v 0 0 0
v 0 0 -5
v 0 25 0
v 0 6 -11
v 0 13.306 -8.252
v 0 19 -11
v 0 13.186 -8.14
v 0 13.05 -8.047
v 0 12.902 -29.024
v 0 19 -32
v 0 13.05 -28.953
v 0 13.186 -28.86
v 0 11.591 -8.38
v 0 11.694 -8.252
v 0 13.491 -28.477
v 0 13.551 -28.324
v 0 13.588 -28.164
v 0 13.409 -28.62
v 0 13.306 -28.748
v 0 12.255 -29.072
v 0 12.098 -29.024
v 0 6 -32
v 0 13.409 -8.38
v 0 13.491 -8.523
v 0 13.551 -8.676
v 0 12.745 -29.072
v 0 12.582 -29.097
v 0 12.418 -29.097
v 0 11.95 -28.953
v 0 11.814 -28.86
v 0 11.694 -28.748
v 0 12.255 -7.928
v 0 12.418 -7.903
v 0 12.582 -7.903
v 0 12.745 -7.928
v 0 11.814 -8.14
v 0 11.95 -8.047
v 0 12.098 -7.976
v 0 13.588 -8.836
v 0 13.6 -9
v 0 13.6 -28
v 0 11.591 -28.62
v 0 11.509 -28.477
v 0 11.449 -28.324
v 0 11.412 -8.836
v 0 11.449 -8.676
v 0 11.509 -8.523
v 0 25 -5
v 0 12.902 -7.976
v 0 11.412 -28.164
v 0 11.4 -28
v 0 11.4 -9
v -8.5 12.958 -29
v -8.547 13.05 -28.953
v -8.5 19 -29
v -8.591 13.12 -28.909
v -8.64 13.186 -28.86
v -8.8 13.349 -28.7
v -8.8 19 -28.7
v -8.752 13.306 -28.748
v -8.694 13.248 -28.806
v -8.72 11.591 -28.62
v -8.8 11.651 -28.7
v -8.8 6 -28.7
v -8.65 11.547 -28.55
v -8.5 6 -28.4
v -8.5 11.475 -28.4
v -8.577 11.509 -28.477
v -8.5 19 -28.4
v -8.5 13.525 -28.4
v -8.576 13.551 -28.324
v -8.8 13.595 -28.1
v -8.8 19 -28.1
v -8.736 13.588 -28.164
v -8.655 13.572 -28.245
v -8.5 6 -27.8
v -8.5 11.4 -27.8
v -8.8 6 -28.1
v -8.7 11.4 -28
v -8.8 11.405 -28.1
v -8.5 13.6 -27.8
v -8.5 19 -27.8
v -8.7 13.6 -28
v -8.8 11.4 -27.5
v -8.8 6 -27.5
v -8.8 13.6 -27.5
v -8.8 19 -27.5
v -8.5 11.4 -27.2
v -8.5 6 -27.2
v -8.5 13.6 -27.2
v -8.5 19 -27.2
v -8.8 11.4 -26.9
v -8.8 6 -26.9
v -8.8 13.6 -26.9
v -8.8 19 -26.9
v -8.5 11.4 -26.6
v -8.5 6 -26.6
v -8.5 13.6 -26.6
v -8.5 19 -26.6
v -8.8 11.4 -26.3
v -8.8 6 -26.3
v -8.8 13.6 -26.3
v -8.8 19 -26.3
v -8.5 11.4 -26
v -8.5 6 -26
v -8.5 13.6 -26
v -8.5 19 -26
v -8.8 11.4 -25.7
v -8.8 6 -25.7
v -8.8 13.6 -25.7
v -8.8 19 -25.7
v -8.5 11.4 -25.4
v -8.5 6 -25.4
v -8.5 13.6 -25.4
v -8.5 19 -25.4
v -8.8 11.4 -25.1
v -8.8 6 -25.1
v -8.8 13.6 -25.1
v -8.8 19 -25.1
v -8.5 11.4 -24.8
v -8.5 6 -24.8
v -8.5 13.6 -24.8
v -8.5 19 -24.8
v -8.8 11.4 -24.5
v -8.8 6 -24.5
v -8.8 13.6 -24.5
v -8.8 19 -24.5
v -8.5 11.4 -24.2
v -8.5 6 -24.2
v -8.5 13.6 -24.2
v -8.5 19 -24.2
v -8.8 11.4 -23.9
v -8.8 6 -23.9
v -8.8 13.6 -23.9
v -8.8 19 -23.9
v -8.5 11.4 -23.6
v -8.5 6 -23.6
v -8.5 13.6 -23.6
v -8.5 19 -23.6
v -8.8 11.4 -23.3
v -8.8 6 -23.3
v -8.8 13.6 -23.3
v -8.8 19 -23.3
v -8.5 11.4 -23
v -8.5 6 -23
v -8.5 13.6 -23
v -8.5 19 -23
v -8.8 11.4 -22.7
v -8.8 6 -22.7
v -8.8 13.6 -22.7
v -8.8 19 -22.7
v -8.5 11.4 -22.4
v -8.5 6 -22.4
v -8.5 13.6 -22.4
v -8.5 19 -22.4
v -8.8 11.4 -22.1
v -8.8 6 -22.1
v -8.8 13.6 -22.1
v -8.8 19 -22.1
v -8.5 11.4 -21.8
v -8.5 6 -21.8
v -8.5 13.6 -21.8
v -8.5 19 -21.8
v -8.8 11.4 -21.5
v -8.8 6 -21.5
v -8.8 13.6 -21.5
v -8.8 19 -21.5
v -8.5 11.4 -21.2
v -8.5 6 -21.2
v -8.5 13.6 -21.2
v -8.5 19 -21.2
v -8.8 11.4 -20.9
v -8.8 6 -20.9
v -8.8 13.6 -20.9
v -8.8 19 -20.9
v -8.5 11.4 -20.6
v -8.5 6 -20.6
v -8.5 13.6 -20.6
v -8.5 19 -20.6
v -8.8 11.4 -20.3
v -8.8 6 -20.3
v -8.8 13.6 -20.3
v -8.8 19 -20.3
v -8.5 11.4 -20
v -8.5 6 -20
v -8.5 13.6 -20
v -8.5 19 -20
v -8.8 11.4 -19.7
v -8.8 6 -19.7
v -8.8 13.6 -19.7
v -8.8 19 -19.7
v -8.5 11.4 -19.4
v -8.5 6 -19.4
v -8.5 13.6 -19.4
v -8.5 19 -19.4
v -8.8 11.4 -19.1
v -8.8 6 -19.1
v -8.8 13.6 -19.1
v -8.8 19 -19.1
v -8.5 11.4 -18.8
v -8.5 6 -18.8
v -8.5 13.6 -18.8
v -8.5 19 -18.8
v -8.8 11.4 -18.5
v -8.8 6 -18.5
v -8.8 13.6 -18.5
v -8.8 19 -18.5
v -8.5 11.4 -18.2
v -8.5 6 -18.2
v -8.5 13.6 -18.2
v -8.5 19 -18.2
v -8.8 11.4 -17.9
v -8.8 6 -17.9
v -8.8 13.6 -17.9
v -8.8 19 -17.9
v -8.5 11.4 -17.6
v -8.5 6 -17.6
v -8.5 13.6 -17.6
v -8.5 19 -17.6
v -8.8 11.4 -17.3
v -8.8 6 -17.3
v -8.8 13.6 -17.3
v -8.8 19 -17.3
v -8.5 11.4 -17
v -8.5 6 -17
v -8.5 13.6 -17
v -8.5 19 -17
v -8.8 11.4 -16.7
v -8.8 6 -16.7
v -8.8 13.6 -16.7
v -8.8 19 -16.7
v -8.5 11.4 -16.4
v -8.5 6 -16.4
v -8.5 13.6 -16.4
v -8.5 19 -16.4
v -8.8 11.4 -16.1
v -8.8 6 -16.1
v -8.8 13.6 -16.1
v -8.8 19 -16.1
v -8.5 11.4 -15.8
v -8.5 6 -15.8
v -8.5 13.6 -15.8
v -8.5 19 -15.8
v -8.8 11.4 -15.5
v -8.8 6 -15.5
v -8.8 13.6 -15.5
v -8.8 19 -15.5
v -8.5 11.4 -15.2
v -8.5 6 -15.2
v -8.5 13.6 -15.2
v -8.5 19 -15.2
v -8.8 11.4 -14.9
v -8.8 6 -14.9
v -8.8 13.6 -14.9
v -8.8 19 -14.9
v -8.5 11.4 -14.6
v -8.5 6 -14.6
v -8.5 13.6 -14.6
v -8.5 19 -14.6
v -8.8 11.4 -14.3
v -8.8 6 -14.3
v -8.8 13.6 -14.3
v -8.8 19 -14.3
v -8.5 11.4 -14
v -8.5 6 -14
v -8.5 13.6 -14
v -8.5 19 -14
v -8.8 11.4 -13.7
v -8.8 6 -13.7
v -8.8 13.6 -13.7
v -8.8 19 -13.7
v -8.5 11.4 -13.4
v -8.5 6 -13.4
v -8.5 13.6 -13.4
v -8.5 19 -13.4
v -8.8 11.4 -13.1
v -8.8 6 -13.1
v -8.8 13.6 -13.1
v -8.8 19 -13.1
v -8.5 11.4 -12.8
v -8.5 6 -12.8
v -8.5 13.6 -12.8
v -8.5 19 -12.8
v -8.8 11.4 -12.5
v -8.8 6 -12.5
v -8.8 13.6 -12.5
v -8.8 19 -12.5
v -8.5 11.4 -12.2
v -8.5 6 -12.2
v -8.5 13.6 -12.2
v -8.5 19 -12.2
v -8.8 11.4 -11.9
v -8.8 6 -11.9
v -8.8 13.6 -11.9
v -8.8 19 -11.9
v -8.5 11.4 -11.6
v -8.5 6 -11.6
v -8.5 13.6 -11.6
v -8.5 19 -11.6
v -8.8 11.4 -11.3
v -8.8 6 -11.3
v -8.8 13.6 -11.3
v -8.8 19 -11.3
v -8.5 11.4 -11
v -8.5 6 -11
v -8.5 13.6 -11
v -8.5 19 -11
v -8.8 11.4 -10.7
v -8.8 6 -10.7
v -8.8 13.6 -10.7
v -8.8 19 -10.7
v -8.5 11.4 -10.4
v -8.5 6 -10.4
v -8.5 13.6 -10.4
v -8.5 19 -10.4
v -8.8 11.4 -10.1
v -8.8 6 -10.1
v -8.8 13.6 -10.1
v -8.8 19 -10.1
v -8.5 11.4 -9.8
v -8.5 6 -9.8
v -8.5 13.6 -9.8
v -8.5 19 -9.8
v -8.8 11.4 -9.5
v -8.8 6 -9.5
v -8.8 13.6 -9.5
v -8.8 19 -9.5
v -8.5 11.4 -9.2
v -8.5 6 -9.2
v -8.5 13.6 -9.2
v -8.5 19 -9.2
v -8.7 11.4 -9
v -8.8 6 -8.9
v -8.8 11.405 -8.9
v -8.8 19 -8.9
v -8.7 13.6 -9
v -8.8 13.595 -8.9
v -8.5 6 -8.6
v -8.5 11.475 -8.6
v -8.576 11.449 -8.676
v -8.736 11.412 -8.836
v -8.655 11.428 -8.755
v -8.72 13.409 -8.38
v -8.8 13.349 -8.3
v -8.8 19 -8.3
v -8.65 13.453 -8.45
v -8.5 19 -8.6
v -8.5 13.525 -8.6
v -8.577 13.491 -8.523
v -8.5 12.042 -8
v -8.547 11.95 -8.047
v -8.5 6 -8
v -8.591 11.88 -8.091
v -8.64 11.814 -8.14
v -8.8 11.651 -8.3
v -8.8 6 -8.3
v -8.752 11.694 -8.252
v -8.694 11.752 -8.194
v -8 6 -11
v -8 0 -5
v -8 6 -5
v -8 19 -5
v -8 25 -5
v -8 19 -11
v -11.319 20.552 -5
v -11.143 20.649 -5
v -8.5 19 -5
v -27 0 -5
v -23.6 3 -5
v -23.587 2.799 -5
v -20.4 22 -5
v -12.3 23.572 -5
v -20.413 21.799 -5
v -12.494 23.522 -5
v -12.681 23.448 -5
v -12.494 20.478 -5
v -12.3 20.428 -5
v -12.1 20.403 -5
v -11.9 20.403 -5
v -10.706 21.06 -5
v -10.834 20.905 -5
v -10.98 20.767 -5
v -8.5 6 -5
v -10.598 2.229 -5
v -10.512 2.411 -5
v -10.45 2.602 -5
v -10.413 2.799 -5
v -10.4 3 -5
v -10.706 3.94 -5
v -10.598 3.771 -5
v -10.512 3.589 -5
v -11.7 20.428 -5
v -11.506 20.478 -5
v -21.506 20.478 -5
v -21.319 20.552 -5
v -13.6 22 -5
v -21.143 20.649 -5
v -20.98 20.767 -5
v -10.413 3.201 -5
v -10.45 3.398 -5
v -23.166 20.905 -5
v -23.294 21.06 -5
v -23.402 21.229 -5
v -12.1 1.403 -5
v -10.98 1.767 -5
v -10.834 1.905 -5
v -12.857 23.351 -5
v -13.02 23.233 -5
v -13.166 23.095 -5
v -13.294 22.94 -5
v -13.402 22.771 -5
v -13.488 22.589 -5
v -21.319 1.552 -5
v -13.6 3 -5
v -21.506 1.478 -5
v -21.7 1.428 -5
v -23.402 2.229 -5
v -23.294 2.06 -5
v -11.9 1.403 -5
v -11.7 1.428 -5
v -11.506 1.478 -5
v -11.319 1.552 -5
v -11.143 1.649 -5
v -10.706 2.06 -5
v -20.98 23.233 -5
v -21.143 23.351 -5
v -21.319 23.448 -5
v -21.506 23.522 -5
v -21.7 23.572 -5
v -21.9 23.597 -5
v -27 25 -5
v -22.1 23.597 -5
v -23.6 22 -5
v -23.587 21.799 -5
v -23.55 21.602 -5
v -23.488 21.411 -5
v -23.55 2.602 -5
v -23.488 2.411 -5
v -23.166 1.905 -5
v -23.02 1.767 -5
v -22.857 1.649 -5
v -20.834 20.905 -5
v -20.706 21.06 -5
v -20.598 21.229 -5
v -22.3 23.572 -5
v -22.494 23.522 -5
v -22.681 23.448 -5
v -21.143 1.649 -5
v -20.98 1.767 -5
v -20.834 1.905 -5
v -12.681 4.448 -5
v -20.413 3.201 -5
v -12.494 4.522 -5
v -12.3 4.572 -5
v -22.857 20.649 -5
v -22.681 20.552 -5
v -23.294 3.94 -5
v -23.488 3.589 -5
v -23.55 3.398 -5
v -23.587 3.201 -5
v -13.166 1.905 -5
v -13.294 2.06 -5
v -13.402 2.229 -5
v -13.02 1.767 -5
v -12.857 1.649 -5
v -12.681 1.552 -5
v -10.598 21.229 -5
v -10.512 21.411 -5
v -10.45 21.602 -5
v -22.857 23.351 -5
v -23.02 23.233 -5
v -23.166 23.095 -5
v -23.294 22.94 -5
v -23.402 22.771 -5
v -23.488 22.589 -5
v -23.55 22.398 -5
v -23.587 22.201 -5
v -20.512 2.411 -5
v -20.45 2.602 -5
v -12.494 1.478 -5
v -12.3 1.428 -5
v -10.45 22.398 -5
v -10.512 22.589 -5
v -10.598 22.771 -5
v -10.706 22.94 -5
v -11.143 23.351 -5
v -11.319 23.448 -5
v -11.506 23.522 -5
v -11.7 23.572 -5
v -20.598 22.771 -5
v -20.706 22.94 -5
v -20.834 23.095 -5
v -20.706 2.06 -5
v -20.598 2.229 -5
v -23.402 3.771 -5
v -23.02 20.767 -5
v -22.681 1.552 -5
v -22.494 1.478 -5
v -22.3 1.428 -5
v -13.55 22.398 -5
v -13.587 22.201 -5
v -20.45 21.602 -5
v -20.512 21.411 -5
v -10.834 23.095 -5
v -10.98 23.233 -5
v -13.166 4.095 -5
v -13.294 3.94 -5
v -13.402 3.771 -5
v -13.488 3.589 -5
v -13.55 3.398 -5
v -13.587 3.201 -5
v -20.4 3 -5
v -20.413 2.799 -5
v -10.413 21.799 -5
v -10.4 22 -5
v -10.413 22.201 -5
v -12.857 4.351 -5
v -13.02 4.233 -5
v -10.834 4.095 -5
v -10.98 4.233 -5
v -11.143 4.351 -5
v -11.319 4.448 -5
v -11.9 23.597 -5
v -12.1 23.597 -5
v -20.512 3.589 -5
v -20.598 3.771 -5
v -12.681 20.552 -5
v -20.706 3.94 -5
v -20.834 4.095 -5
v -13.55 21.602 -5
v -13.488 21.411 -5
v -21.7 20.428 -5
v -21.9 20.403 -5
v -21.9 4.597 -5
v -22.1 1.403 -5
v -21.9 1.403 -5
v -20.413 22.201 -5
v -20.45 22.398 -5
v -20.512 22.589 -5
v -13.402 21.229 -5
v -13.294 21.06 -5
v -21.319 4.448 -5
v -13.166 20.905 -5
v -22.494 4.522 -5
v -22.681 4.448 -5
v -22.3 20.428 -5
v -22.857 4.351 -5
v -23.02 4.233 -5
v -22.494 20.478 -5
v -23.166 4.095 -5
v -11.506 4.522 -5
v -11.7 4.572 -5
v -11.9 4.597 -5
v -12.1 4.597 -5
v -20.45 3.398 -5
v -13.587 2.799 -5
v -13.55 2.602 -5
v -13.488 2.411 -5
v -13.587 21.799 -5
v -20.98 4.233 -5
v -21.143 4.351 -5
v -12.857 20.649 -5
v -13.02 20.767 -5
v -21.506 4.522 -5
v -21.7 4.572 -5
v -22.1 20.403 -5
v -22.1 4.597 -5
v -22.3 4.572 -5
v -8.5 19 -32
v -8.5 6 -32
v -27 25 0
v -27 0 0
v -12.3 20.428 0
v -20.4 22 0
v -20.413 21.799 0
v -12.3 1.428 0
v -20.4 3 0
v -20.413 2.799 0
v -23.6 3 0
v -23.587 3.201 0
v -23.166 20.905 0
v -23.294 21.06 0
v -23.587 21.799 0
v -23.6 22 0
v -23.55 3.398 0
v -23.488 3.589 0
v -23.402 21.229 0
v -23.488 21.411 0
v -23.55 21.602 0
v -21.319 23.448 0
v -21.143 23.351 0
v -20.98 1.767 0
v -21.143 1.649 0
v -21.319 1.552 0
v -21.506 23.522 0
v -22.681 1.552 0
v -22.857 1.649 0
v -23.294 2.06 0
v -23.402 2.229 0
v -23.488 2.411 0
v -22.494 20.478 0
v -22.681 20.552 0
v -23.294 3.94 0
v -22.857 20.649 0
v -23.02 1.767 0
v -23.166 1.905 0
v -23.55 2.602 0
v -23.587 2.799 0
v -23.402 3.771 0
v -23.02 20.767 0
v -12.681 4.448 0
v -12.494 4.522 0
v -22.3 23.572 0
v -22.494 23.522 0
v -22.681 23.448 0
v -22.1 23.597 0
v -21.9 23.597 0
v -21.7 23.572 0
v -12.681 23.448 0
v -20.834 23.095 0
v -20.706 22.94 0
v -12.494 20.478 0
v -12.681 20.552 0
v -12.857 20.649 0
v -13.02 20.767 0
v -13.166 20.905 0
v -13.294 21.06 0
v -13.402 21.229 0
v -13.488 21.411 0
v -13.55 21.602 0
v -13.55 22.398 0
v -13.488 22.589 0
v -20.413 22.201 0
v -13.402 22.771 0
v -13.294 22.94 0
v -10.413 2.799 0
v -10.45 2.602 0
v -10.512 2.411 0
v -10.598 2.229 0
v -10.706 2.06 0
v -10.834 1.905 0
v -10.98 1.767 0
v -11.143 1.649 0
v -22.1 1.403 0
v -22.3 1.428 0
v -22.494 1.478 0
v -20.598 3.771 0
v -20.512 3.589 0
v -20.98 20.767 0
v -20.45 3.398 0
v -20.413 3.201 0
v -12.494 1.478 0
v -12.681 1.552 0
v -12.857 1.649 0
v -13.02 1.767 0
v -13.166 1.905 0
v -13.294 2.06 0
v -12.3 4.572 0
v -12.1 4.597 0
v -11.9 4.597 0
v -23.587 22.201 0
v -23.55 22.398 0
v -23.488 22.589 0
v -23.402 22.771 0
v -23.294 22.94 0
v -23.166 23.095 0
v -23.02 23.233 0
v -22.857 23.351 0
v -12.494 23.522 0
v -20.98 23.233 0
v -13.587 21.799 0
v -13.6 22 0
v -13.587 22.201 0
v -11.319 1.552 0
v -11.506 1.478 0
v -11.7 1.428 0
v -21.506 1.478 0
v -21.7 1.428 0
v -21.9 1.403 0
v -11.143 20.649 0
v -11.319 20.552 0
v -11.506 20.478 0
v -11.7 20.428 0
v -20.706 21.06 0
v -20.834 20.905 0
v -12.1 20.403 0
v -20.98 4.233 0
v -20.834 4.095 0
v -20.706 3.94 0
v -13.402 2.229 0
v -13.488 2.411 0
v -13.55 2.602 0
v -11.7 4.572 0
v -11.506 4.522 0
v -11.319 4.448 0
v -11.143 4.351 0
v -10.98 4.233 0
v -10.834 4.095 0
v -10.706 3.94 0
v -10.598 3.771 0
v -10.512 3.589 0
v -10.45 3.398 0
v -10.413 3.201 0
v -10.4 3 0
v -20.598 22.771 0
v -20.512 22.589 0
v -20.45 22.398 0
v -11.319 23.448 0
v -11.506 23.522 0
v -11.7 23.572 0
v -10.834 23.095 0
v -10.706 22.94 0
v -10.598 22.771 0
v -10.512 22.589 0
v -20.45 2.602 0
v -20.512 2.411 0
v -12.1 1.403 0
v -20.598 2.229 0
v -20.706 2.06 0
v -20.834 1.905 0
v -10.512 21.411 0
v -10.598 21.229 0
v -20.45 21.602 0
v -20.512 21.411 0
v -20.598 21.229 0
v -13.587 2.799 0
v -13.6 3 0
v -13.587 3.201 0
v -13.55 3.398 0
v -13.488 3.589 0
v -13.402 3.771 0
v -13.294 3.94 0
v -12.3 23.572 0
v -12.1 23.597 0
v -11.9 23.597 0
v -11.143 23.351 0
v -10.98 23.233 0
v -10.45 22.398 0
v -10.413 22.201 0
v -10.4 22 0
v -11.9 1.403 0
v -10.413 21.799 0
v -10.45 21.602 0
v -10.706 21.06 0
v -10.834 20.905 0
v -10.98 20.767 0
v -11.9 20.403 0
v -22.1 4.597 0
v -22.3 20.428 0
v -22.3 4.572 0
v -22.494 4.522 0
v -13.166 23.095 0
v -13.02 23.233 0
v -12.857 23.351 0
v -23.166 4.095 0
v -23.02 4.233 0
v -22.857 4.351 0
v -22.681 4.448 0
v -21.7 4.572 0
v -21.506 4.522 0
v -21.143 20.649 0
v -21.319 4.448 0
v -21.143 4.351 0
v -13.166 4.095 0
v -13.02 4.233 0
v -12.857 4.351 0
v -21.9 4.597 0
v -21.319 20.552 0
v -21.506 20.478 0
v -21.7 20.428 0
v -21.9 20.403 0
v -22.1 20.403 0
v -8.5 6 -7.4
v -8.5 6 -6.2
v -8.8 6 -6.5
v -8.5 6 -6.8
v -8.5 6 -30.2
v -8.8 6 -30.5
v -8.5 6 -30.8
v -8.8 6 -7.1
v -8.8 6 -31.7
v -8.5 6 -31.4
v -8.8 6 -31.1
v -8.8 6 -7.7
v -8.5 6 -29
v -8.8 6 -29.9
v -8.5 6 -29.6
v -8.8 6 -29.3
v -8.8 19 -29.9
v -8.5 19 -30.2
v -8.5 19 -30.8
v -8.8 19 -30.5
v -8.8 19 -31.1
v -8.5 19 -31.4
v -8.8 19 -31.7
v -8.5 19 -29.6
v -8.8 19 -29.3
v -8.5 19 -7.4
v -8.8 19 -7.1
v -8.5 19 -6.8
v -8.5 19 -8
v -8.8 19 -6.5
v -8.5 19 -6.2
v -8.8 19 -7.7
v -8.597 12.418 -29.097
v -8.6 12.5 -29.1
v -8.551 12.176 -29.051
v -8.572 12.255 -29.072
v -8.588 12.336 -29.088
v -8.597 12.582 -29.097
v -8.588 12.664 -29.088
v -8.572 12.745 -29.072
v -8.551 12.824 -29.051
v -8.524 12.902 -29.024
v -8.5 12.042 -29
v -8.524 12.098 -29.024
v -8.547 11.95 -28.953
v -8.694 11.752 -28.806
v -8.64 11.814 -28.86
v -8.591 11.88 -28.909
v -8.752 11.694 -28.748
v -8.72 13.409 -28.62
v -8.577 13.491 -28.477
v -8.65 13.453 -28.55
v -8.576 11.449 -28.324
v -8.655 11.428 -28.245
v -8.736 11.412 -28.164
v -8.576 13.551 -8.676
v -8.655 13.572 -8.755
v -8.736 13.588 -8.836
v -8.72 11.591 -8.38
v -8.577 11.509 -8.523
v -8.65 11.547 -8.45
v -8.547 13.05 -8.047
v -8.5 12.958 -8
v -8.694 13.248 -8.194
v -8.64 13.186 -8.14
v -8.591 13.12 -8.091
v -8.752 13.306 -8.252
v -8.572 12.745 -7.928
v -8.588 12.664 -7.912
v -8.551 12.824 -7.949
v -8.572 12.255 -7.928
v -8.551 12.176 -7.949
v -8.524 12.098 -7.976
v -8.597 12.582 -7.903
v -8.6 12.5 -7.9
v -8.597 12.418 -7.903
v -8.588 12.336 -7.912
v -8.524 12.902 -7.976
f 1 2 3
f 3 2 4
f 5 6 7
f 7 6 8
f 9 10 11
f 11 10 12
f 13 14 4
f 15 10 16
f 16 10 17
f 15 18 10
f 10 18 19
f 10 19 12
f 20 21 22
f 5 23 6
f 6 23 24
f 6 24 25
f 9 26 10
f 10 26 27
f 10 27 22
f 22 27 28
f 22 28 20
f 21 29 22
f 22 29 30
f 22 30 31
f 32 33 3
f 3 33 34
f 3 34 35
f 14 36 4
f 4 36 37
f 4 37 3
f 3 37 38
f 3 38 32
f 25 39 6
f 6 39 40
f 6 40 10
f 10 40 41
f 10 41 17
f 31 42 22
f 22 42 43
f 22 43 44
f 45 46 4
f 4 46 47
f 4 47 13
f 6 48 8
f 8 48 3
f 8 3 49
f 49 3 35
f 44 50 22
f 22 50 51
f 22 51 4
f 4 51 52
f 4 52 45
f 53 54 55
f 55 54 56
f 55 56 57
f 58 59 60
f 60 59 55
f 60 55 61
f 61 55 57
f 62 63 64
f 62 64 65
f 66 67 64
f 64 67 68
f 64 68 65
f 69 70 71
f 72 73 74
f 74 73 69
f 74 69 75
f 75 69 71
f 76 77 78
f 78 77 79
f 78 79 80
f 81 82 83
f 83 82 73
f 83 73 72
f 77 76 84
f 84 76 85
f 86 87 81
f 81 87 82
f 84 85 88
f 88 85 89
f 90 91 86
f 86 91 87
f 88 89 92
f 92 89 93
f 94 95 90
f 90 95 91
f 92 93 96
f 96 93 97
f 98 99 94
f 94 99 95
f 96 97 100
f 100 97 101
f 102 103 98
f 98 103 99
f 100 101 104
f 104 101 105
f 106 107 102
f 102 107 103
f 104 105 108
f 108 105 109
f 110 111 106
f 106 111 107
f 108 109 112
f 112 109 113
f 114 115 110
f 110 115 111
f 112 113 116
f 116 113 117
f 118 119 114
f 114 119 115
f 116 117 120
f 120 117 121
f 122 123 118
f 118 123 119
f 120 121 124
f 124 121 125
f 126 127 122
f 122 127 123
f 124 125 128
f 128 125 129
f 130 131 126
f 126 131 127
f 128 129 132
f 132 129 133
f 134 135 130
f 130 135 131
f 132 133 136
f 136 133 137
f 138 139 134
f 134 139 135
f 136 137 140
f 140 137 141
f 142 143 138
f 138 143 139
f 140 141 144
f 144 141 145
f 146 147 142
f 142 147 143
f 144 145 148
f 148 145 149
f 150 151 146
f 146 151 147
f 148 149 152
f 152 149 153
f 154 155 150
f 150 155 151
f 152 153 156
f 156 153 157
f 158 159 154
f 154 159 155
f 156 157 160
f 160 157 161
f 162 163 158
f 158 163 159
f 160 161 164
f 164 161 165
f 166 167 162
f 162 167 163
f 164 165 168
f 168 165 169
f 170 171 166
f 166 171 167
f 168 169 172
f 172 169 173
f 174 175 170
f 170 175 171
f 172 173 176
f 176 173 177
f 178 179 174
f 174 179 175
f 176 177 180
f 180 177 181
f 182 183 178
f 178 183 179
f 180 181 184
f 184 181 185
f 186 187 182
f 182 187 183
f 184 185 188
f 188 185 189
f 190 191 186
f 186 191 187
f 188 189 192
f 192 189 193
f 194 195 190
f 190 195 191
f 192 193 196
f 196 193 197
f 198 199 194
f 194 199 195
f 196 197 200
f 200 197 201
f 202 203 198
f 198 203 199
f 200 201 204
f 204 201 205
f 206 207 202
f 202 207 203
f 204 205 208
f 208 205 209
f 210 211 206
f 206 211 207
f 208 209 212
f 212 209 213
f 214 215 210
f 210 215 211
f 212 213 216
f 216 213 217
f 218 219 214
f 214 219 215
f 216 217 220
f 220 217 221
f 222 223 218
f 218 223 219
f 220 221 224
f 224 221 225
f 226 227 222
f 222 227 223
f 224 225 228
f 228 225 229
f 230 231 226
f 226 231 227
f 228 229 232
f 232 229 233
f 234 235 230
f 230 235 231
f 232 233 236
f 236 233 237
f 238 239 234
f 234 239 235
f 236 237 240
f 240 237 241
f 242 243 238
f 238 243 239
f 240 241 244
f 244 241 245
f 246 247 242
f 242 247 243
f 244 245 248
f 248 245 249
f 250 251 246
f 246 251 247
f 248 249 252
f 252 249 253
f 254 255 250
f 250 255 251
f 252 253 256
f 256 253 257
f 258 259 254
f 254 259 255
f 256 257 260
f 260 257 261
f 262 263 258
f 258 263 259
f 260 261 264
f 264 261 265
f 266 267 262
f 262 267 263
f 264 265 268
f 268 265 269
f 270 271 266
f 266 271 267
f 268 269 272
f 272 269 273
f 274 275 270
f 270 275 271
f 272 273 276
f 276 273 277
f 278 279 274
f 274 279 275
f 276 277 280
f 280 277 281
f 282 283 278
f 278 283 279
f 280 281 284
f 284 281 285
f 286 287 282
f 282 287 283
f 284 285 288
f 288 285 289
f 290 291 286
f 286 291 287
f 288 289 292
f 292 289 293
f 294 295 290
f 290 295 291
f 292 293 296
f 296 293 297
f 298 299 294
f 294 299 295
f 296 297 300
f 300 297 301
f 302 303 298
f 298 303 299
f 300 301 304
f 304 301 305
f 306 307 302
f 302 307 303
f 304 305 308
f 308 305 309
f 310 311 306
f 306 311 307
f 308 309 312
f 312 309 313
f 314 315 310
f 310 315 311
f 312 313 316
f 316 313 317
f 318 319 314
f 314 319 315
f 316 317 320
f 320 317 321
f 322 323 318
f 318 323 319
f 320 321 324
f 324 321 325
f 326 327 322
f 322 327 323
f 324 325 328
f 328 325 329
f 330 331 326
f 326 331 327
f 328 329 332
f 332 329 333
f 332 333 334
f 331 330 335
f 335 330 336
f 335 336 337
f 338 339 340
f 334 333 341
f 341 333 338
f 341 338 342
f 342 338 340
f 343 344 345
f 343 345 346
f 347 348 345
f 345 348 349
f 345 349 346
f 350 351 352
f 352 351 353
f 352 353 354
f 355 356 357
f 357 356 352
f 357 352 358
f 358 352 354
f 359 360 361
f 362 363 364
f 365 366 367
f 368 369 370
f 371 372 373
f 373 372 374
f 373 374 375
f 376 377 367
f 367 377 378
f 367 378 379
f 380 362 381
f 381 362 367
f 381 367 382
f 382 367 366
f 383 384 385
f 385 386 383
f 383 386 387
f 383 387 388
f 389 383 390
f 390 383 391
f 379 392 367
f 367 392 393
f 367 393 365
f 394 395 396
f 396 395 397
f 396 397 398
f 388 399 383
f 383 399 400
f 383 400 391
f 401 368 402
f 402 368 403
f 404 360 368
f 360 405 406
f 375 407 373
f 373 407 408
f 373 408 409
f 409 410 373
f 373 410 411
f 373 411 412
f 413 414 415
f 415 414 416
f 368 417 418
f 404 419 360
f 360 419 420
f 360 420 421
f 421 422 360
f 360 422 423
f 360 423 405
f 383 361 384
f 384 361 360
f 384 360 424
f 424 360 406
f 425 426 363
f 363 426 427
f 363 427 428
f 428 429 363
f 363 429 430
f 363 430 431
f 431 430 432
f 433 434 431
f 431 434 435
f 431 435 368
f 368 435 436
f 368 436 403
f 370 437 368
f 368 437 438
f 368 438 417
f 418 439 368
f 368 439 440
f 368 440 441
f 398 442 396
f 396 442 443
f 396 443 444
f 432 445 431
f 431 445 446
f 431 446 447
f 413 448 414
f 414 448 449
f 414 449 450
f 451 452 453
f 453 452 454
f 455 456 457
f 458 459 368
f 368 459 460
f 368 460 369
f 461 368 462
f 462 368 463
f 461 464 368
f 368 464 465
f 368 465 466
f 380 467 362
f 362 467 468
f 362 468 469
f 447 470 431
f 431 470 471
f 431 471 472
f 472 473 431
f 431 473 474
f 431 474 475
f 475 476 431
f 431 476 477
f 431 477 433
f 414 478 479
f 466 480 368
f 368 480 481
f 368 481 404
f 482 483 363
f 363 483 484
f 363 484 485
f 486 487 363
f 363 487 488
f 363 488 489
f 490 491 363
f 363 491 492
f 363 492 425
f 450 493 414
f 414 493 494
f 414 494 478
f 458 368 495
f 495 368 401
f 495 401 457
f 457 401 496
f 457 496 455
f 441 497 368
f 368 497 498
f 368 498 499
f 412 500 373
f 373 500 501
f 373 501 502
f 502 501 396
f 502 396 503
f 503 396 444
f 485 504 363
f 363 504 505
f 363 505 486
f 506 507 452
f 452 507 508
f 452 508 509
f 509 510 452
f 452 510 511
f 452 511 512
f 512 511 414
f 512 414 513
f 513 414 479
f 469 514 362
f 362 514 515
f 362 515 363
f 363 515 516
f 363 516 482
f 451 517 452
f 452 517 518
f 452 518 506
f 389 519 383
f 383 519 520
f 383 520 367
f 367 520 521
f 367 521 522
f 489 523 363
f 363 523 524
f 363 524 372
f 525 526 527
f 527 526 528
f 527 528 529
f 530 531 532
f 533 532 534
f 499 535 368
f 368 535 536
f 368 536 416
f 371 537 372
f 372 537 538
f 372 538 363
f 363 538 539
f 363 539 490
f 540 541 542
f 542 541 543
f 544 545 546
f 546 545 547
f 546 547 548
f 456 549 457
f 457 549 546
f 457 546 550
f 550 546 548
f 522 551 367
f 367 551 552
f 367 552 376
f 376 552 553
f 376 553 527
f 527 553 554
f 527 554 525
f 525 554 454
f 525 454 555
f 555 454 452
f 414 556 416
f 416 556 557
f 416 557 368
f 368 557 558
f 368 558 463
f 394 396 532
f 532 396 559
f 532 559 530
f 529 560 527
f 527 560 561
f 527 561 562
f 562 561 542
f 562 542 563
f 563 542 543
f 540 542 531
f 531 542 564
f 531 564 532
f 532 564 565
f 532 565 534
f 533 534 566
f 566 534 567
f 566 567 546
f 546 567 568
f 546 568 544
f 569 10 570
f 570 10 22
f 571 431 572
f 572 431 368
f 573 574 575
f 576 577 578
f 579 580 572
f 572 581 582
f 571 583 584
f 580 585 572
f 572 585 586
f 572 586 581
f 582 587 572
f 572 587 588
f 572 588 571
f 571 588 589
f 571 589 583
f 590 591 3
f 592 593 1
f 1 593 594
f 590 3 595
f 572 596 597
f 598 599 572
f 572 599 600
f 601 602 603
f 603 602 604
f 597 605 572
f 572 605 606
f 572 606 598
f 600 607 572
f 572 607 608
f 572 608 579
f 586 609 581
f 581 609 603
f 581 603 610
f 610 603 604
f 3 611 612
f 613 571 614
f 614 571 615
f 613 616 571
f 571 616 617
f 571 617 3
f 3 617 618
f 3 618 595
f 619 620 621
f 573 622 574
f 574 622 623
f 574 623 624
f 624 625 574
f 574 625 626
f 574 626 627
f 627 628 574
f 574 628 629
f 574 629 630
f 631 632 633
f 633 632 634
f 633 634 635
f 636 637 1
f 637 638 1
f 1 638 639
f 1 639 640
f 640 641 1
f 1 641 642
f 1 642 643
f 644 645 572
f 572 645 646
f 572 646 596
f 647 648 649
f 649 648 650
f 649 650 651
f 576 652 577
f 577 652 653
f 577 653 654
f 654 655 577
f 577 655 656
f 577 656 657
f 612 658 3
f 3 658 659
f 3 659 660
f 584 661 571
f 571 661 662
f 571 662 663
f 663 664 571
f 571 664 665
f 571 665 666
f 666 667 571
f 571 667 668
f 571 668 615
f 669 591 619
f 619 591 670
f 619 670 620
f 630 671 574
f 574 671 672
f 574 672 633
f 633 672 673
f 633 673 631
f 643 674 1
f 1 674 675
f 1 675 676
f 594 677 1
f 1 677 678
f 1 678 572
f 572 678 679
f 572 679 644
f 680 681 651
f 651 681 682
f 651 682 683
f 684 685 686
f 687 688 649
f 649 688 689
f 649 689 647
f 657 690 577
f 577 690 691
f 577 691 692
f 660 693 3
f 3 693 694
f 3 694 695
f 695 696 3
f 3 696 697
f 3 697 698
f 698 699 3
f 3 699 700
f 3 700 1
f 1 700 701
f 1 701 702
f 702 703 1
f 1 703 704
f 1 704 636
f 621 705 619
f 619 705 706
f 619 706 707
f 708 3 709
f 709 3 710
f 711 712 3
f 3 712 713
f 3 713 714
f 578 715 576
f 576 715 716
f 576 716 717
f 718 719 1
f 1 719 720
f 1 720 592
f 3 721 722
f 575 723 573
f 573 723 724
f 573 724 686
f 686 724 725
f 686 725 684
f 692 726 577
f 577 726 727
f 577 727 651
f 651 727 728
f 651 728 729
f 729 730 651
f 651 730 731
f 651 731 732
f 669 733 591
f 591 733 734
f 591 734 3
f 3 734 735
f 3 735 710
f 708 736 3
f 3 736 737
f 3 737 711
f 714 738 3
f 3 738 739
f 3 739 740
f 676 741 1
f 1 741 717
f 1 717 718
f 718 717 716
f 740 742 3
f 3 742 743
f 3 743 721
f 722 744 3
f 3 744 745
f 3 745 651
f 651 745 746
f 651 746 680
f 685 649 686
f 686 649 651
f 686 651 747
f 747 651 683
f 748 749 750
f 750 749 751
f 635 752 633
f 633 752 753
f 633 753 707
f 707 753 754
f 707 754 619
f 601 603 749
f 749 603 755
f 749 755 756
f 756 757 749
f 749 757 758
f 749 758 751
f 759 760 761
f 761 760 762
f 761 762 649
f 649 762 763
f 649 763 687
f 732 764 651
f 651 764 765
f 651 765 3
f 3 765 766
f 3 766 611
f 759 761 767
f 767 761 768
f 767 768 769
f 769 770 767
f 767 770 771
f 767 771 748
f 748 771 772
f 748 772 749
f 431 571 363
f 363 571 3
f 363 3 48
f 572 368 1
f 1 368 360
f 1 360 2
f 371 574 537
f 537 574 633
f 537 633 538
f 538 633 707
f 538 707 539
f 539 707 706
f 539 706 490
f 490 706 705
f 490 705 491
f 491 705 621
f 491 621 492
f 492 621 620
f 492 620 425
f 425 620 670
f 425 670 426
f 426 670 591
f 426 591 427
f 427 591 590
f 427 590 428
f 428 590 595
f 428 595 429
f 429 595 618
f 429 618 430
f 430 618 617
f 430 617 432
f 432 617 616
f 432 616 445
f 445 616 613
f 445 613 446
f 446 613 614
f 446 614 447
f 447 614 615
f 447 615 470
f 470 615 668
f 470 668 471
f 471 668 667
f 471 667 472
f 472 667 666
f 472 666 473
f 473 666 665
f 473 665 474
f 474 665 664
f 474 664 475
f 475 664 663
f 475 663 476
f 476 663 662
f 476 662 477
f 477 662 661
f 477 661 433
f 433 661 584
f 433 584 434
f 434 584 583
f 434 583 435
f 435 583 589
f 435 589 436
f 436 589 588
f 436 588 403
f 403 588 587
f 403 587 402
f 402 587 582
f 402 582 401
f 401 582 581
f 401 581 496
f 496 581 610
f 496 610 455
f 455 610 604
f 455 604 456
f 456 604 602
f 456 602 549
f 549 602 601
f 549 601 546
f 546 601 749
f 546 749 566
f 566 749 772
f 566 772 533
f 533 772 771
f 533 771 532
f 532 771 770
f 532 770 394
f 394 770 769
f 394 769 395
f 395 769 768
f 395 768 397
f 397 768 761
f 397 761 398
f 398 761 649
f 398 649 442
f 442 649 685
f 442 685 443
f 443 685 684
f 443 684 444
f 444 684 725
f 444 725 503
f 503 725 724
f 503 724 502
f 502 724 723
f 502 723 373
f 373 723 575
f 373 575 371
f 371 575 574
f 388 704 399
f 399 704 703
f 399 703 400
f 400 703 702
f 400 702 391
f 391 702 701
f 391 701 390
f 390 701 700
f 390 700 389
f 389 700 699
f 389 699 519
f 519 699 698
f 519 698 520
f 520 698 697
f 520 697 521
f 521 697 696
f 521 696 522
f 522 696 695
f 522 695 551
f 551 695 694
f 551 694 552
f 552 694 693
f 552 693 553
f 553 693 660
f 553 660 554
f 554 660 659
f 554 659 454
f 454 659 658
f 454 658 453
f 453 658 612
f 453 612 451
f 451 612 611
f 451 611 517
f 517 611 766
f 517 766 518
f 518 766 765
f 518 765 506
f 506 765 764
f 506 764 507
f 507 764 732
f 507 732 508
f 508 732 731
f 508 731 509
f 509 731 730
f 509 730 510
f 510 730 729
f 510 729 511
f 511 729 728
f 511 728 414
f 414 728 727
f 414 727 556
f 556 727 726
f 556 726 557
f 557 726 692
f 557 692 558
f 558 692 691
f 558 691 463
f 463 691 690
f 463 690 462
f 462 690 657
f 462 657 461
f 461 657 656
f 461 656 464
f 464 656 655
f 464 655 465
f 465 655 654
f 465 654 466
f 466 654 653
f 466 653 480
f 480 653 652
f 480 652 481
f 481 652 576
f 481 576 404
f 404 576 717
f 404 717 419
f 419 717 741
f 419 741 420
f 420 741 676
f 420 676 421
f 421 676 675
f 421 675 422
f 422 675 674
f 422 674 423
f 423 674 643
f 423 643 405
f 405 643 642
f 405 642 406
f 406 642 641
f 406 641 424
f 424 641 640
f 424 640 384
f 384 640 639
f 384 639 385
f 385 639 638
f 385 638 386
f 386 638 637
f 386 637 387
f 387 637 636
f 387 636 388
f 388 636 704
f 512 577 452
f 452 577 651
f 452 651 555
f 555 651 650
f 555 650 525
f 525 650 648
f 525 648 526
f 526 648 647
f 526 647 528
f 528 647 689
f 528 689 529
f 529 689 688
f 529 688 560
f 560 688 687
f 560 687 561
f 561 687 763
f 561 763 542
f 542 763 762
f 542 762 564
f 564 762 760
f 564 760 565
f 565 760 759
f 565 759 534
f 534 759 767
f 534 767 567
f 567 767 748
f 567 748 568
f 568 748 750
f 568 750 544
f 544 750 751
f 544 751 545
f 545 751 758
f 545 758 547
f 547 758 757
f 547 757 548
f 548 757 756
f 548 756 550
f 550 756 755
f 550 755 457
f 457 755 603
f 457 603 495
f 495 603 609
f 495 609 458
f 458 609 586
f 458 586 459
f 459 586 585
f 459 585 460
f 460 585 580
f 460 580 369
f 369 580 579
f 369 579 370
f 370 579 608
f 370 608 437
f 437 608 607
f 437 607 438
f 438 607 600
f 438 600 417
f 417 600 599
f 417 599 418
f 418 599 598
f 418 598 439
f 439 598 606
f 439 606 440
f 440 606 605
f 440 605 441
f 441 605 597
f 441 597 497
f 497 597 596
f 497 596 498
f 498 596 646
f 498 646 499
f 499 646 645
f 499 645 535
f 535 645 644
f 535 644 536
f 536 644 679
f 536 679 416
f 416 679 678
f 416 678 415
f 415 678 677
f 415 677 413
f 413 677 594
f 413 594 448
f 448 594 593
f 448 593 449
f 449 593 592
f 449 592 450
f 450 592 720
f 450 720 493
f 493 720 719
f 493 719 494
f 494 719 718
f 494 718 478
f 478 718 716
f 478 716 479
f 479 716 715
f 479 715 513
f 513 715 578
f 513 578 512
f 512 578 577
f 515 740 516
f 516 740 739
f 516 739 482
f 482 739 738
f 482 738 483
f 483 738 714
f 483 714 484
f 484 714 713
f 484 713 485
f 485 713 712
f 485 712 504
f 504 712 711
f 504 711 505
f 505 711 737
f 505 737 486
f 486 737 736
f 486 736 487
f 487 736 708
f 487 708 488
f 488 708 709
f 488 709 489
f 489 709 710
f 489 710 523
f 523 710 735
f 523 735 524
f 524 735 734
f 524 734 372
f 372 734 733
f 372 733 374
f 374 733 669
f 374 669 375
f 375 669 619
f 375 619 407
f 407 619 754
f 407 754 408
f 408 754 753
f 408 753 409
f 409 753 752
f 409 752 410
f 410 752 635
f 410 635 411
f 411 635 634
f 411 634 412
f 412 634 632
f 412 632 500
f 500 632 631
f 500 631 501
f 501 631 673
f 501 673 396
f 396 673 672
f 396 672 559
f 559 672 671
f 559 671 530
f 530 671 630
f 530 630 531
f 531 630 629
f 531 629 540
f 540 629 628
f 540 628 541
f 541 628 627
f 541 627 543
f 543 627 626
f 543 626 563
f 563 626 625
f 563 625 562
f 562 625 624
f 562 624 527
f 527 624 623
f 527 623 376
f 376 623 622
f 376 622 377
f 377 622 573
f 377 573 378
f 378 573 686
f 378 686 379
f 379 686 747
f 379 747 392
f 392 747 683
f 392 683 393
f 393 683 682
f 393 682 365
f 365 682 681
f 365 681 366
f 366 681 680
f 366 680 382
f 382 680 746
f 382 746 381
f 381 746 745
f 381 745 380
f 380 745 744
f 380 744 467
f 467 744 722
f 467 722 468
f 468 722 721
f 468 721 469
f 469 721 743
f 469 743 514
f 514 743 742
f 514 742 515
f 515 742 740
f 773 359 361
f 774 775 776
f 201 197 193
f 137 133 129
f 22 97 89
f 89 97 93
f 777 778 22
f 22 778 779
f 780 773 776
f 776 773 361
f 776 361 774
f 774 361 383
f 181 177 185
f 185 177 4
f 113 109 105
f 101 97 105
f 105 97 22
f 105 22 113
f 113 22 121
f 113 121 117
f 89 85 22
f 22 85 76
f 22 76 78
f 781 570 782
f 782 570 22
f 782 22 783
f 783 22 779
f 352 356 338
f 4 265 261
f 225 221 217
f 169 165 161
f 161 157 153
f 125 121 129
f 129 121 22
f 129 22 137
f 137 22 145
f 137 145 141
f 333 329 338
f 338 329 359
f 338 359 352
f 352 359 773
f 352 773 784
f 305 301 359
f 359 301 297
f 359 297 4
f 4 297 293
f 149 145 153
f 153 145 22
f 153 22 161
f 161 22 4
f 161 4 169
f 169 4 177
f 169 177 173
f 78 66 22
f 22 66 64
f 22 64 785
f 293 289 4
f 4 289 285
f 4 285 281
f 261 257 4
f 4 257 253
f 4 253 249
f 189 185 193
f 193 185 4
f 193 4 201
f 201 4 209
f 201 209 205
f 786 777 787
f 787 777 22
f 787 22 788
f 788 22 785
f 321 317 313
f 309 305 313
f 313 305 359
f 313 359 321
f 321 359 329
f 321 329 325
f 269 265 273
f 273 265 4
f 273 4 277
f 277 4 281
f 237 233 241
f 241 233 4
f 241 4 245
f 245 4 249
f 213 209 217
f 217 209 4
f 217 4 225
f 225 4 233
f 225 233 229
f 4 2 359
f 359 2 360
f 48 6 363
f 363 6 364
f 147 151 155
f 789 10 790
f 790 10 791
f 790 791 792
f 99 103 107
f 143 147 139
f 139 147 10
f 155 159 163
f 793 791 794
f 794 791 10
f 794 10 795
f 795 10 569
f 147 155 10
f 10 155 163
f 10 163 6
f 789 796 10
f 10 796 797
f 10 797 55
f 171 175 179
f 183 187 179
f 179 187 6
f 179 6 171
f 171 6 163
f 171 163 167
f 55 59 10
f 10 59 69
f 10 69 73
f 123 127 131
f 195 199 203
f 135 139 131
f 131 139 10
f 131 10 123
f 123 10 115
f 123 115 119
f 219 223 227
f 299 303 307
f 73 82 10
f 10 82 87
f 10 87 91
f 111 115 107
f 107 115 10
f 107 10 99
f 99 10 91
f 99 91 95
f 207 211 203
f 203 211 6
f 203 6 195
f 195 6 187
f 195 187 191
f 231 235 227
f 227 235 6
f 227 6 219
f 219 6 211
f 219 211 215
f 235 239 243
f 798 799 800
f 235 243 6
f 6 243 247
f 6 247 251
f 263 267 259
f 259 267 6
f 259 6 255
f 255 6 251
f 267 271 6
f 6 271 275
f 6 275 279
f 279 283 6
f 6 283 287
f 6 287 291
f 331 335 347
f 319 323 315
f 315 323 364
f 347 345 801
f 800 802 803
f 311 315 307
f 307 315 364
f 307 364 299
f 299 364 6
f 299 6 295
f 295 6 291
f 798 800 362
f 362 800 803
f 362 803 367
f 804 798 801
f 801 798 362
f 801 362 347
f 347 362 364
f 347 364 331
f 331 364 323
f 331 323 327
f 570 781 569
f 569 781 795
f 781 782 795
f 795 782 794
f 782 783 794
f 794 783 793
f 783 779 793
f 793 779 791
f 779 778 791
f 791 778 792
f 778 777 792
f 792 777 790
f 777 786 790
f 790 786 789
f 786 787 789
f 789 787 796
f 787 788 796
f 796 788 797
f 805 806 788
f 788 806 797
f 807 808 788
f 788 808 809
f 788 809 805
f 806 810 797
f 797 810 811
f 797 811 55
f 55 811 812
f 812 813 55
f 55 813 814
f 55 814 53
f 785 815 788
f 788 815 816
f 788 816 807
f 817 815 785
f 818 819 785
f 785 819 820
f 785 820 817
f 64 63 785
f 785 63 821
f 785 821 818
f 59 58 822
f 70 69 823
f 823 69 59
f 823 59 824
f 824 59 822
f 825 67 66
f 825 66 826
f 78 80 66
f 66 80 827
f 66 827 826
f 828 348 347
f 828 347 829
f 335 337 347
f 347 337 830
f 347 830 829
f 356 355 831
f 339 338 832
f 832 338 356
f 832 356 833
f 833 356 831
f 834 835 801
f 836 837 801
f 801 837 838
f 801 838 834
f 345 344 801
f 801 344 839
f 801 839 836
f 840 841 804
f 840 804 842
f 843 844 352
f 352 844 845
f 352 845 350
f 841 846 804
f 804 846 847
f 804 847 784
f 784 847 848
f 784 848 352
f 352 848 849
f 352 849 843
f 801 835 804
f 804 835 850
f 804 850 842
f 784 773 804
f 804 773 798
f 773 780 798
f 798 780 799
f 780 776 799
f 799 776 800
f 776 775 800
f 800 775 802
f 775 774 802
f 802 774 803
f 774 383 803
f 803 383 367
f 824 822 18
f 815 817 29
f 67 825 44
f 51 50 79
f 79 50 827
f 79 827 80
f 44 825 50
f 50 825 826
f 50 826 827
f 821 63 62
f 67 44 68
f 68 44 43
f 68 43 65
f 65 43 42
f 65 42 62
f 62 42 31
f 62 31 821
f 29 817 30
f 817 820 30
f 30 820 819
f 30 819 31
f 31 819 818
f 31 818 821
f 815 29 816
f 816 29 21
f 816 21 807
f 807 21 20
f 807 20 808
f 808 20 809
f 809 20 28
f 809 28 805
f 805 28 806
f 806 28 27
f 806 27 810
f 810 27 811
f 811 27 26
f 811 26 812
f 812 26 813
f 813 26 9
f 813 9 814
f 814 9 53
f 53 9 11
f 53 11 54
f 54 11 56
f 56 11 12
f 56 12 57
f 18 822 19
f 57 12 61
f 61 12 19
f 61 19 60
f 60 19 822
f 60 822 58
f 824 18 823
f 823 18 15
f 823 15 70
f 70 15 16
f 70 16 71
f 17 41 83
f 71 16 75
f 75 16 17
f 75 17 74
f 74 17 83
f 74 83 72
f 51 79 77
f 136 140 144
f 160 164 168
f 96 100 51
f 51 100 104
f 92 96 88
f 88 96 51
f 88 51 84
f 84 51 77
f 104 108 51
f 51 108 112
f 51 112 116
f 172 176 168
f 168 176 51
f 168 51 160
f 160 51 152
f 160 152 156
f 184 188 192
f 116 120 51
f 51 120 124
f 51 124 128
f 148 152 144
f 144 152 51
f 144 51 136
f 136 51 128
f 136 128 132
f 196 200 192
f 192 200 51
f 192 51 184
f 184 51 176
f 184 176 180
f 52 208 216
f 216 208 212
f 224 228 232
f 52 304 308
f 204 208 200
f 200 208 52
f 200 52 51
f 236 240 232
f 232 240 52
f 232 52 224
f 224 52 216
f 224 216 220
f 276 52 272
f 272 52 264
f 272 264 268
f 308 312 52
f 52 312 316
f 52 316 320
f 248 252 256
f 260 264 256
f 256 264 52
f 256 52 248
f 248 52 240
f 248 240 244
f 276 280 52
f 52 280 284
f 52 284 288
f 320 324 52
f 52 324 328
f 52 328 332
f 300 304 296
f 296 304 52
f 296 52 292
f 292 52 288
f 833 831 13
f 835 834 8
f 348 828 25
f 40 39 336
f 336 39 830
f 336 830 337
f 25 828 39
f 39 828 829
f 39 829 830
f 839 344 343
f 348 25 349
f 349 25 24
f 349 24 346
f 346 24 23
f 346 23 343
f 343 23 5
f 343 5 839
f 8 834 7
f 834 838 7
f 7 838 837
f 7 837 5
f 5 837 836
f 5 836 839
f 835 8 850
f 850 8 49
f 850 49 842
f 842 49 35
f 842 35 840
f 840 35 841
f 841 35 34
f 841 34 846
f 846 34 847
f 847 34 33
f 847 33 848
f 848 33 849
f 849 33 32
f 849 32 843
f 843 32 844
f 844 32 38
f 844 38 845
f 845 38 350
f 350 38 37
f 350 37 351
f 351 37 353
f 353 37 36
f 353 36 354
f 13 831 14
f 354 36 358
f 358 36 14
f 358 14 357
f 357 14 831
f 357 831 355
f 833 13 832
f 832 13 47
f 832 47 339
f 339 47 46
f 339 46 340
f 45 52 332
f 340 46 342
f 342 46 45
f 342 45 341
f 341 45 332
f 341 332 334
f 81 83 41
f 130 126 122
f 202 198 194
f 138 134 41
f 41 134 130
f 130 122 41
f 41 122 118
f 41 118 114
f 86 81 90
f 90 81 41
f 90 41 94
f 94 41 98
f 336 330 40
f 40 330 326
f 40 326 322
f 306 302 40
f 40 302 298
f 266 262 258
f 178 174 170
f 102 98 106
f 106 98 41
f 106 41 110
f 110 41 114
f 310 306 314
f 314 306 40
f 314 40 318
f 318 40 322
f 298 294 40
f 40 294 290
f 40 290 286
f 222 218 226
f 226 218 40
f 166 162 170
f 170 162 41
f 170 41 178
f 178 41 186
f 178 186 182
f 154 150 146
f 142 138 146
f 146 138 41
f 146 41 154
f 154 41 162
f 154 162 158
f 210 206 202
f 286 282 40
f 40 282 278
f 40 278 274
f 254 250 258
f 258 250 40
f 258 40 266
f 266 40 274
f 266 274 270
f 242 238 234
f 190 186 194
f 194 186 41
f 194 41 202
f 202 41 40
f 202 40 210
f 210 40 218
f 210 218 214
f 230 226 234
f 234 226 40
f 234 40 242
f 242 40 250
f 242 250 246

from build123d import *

# Parameters (mm, degrees)
EXTRUDE_1_DEPTH          = 25
SKETCH_4_R               = 1.6
CUT_EXTRUDE_2_DEPTH      = 49.764741361
CUT_EXTRUDE_5_DEPTH      = 45.833023543
EXTRUDE_2_DEPTH          = 13
CUT_EXTRUDE_4_DEPTH      = 10
CUT_EXTRUDE_4_DEPTH_BACK = 45.833023543


with BuildPart() as part:
    # 草图1 → 凸台-拉伸1 (new body)
    with BuildSketch(Plane(origin=(0, 0, 0), x_dir=(1, 0, 0), z_dir=(0, 1, 0))):
        Polygon((0, 0), (-27, 0), (-27, 5), (-8, 5), (-8, 32), (0, 32), align=None)
    extrude(amount=EXTRUDE_1_DEPTH)

    # 草图4 → 切除-拉伸2 (cut, through all)
    with BuildSketch(Plane.XY):
        with Locations((-22, 22)):
            Circle(SKETCH_4_R)
        with Locations((-12, 22)):
            Circle(SKETCH_4_R)
        with Locations((-22, 3)):
            Circle(SKETCH_4_R)
        with Locations((-12, 3)):
            Circle(SKETCH_4_R)
    extrude(amount=-CUT_EXTRUDE_2_DEPTH, mode=Mode.SUBTRACT)

    # 草图8 → 切除-拉伸5 (cut, through all)
    with BuildSketch(Plane.ZY.offset(8)):
        Polygon((-32, 19), (-11, 19), (-5, 25), (-32, 25), align=None)
        Polygon((-11, 6), (-5, 0), (-32, 0), (-32, 6), align=None)
    extrude(amount=-CUT_EXTRUDE_5_DEPTH, mode=Mode.SUBTRACT)

    # 草图11 → 凸台-拉伸2 (add)
    with BuildSketch(Plane.XZ.offset(-6)):
        Polygon((-8, -5), (-8, -32), (-8.5, -32), (-8.8, -31.7), (-8.5, -31.4), (-8.8, -31.1), (-8.5, -30.8), (-8.8, -30.5), (-8.5, -30.2), (-8.8, -29.9), (-8.5, -29.6), (-8.8, -29.3), (-8.5, -29), (-8.8, -28.7), (-8.5, -28.4), (-8.8, -28.1), (-8.5, -27.8), (-8.8, -27.5), (-8.5, -27.2), (-8.8, -26.9), (-8.5, -26.6), (-8.8, -26.3), (-8.5, -26), (-8.8, -25.7), (-8.5, -25.4), (-8.8, -25.1), (-8.5, -24.8), (-8.8, -24.5), (-8.5, -24.2), (-8.8, -23.9), (-8.5, -23.6), (-8.8, -23.3), (-8.5, -23), (-8.8, -22.7), (-8.5, -22.4), (-8.8, -22.1), (-8.5, -21.8), (-8.8, -21.5), (-8.5, -21.2), (-8.8, -20.9), (-8.5, -20.6), (-8.8, -20.3), (-8.5, -20), (-8.8, -19.7), (-8.5, -19.4), (-8.8, -19.1), (-8.5, -18.8), (-8.8, -18.5), (-8.5, -18.2), (-8.8, -17.9), (-8.5, -17.6), (-8.8, -17.3), (-8.5, -17), (-8.8, -16.7), (-8.5, -16.4), (-8.8, -16.1), (-8.5, -15.8), (-8.8, -15.5), (-8.5, -15.2), (-8.8, -14.9), (-8.5, -14.6), (-8.8, -14.3), (-8.5, -14), (-8.8, -13.7), (-8.5, -13.4), (-8.8, -13.1), (-8.5, -12.8), (-8.8, -12.5), (-8.5, -12.2), (-8.8, -11.9), (-8.5, -11.6), (-8.8, -11.3), (-8.5, -11), (-8.8, -10.7), (-8.5, -10.4), (-8.8, -10.1), (-8.5, -9.8), (-8.8, -9.5), (-8.5, -9.2), (-8.8, -8.9), (-8.5, -8.6), (-8.8, -8.3), (-8.5, -8), (-8.8, -7.7), (-8.5, -7.4), (-8.8, -7.1), (-8.5, -6.8), (-8.8, -6.5), (-8.5, -6.2), (-8.5, -5), align=None)
    extrude(amount=-EXTRUDE_2_DEPTH)

    # 草图6 → 切除-拉伸4 (cut, two sides: drawn at the far end of the back side and taken through both)
    with BuildSketch(Plane.ZY.offset(8).offset(-CUT_EXTRUDE_4_DEPTH_BACK)):
        with BuildLine():
            Line((-28, 13.6), (-9, 13.6))
            ThreePointArc((-9, 13.6), (-7.9, 12.5), (-9, 11.4))
            Line((-9, 11.4), (-28, 11.4))
            ThreePointArc((-28, 11.4), (-29.1, 12.5), (-28, 13.6))
        make_face()
    extrude(amount=CUT_EXTRUDE_4_DEPTH + CUT_EXTRUDE_4_DEPTH_BACK, mode=Mode.SUBTRACT)


solid = part.part
